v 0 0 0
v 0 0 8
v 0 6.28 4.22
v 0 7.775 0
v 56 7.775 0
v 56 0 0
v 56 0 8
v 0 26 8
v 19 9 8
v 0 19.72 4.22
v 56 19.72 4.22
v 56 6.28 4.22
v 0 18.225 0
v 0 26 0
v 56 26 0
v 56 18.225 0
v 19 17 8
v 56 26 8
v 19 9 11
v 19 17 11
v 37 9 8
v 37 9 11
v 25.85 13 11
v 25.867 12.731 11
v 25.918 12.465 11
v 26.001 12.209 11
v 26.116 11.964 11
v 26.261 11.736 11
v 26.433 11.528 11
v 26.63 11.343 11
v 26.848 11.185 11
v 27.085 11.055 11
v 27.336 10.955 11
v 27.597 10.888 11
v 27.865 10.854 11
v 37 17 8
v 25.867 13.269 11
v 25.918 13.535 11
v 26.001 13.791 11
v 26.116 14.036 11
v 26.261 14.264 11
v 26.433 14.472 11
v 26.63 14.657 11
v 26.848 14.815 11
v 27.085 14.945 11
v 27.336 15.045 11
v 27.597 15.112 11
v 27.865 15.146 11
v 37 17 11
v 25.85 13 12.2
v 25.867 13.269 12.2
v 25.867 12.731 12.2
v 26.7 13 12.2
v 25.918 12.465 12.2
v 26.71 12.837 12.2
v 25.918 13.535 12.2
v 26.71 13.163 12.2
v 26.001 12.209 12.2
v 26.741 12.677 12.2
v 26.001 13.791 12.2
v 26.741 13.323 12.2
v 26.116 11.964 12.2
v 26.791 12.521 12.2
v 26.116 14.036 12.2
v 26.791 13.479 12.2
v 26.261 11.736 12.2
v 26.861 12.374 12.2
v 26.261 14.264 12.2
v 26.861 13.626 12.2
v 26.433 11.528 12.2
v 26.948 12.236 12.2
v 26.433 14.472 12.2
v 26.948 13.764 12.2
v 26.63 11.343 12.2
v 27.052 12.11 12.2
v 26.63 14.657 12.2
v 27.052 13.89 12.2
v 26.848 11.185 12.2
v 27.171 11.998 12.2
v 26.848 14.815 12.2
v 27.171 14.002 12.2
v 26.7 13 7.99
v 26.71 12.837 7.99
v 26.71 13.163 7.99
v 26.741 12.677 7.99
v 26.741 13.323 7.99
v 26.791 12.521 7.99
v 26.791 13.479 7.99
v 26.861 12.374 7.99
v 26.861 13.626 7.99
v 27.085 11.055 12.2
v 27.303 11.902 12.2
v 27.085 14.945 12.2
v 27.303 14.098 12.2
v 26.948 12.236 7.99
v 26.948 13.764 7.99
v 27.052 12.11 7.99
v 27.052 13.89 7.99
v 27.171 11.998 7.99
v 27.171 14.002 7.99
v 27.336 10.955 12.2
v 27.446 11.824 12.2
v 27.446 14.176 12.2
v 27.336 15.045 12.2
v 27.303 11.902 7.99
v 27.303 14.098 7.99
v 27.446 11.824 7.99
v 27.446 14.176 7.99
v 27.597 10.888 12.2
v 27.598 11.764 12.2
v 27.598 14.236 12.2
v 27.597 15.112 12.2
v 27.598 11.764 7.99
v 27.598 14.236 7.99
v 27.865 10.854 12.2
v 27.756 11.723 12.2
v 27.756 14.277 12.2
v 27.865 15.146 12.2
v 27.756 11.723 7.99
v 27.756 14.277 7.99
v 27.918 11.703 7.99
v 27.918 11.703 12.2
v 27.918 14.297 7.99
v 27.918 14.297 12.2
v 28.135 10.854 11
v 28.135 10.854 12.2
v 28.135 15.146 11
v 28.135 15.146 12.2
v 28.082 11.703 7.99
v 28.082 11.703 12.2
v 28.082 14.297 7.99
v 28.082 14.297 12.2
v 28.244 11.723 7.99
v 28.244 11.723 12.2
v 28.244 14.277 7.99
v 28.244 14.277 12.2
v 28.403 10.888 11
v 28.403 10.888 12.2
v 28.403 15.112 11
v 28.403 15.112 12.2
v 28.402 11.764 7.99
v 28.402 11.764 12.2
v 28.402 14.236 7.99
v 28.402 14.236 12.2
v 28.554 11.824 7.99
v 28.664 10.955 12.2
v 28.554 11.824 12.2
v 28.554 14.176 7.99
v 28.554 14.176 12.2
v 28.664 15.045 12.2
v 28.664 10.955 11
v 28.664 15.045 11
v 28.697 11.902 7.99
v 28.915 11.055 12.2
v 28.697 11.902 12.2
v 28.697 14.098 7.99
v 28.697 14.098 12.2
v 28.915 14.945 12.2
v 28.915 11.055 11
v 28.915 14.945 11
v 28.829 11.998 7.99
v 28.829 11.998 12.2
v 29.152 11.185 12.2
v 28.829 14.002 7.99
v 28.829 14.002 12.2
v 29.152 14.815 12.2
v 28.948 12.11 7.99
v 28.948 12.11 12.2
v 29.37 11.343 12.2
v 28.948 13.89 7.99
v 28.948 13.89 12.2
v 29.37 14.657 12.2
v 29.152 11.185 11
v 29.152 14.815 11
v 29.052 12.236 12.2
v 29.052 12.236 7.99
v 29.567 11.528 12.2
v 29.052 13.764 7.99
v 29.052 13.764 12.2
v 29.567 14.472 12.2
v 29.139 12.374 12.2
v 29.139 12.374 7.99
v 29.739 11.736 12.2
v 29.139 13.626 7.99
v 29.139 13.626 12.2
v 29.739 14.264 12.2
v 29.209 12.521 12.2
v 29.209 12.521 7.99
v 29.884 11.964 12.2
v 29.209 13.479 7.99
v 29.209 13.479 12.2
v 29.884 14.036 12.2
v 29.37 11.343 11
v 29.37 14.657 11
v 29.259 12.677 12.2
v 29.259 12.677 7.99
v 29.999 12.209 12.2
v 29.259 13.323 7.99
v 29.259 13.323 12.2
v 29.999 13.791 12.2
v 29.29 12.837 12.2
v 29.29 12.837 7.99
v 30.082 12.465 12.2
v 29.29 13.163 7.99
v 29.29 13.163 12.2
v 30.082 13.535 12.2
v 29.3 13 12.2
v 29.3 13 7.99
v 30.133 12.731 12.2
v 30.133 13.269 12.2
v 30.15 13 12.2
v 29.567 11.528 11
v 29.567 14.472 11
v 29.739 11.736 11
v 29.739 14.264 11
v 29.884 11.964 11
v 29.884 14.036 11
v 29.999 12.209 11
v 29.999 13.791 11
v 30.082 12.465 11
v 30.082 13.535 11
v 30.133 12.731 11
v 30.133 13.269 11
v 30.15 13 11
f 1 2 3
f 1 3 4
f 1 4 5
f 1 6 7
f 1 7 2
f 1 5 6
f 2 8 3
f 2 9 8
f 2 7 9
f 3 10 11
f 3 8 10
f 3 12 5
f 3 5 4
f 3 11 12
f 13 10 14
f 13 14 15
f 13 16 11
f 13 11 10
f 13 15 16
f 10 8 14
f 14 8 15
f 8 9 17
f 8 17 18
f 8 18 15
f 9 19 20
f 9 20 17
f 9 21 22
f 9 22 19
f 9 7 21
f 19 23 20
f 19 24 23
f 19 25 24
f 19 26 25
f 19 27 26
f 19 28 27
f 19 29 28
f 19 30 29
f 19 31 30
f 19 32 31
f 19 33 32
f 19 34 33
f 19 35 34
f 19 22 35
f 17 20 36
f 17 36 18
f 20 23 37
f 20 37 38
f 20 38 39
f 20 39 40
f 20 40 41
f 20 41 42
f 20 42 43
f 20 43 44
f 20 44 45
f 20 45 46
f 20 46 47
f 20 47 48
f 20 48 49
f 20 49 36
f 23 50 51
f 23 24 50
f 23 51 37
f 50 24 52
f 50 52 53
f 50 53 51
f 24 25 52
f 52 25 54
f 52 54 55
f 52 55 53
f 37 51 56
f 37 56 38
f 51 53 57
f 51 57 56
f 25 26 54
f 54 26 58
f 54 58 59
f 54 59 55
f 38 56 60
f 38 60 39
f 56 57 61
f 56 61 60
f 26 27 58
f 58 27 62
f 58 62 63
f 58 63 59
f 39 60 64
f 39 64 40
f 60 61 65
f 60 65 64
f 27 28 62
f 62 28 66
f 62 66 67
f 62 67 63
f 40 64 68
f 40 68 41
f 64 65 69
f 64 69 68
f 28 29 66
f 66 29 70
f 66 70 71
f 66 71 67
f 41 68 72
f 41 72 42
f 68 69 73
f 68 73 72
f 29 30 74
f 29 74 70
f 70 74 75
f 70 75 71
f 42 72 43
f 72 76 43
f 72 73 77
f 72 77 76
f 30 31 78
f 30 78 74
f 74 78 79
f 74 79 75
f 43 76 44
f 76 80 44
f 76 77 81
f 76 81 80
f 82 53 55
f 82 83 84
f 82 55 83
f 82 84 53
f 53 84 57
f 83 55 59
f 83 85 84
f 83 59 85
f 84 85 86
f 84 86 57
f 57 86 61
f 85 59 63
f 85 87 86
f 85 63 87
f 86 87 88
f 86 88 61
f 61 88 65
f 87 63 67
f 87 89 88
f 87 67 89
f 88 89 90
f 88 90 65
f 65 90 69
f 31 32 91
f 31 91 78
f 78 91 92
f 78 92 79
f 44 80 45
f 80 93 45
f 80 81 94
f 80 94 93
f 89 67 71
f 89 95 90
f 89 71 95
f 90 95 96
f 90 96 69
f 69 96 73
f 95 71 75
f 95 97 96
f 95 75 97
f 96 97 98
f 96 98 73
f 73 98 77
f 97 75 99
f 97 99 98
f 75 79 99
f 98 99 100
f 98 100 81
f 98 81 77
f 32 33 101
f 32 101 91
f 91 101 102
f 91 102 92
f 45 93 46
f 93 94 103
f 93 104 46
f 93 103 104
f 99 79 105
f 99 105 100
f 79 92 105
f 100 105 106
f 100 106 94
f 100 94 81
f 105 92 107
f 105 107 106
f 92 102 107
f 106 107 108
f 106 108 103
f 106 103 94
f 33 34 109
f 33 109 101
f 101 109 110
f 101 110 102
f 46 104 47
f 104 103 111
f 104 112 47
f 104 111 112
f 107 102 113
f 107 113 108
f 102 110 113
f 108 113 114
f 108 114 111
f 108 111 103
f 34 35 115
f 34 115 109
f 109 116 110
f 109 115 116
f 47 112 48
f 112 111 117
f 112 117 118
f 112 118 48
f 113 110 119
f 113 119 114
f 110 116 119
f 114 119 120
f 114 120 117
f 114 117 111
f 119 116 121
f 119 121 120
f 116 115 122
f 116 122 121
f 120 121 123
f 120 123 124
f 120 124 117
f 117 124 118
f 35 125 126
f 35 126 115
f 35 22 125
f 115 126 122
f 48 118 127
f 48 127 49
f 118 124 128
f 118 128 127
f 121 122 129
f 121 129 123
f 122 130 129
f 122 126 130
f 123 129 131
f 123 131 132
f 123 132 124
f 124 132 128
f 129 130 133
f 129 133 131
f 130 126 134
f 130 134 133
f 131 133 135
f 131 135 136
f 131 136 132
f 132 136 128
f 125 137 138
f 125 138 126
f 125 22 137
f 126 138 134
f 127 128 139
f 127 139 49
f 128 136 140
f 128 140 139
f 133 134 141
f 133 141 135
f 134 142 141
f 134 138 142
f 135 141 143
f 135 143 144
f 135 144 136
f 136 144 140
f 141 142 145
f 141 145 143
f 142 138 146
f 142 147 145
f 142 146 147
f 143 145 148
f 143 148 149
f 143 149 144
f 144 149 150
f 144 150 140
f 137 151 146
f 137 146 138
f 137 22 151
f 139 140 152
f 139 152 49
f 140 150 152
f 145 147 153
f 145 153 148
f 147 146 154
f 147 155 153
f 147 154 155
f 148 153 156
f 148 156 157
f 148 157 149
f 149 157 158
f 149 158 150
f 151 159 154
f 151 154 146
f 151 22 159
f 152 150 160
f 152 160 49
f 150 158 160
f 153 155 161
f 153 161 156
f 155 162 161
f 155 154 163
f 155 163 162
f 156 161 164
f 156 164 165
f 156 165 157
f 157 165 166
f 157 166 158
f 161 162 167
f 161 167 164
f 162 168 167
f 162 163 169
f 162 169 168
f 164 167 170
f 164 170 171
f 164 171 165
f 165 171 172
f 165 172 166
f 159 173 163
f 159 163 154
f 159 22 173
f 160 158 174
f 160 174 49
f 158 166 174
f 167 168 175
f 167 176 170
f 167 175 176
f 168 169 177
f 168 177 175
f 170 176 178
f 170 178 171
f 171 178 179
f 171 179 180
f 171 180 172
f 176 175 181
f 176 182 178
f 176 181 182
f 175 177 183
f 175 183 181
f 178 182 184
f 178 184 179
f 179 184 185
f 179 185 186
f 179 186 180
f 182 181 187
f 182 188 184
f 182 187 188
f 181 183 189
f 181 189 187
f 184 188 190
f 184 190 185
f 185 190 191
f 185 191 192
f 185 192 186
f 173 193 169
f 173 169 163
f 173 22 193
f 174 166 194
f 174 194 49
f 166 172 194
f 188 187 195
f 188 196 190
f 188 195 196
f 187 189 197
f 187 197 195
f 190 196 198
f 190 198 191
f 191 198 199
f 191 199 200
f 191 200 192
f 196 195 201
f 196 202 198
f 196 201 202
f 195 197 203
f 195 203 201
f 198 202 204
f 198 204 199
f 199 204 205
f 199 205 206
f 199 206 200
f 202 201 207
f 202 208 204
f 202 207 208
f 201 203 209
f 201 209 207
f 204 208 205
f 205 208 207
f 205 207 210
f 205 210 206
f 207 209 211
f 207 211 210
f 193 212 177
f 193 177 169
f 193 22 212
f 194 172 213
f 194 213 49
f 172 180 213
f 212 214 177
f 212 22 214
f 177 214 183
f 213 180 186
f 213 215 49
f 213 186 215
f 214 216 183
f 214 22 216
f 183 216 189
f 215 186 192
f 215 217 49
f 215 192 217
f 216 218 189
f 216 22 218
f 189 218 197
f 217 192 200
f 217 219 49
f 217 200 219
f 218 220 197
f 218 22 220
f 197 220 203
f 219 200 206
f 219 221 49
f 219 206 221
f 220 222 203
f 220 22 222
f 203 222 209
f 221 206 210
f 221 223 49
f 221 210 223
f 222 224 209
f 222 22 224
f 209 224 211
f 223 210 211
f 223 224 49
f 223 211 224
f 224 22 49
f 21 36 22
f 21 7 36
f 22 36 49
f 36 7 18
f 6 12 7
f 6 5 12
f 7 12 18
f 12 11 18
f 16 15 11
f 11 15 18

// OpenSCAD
// file: 02_Carrinho_X.scad
/*
  Carrinhos do portico X.

  Pecas deste arquivo:
    1. carrinho_x_motriz()       — PLA, motor e pinhao X
    2. sapata_x_passiva()        — PETG, desliza no trilho traseiro
    3. sela_x_passiva()          — PLA, recebe a viga e flutua +/-0,60 mm em Y

  A sapata passiva e retida por um unico M3x8. O ressalto central fica 0,20 mm
  acima da sela: o parafuso aperta no ressalto, nao bloqueia o movimento lateral.
*/

include <00_Parametros.scad>;

module front_beam_key() {
  difference() {
    translate([x_carriage_length/2-beam_key_w/2,
               base_w/2+beam_key_inset, x_carriage_h-EPS])
      cube([beam_key_w,beam_key_d,beam_key_h+EPS]);
    translate([x_carriage_length/2,base_w/2+beam_key_inset-EPS,
               x_carriage_h+beam_key_h/2])
      rotate([-90,0,0]) cylinder(r=1.35,h=beam_key_d+2*EPS);
  }
}

module rear_beam_key(z0=passive_saddle_h) {
  difference() {
    translate([x_carriage_length/2-beam_key_w/2,
               base_w/2-beam_key_inset-beam_key_d,z0-EPS])
      cube([beam_key_w,beam_key_d,beam_key_h+EPS]);
    translate([x_carriage_length/2,
               base_w/2-beam_key_inset-beam_key_d-EPS,
               z0+beam_key_h/2])
      rotate([-90,0,0]) cylinder(r=1.35,h=beam_key_d+2*EPS);
    // Alivio do ombro flutuante no limite de +/-0,60 mm.
    hull()
      for (dy=[-passive_float,passive_float])
        translate([x_carriage_length/2,base_w/2+dy,z0-EPS])
          cylinder(r=2.45,h=beam_key_h+2*EPS);
  }
}

module carrinho_x_motriz() {
  motor_x_axis_z = rack_pitch_height + gear_pitch_radius + gear_mesh_clearance;
  motor_face_y = -3.3;

  difference() {
    union() {
      cube([x_carriage_length,base_w,x_carriage_h]);

      // Orelhas compactas: os dois furos ficam dentro dos 56 mm do carrinho.
      for (hx=[x_carriage_length/2-motor_flange_dist/2,
               x_carriage_length/2+motor_flange_dist/2])
        translate([hx,motor_face_y,motor_x_axis_z])
          rotate([-90,0,0]) cylinder(r=wall_screw,h=3.4);

      front_beam_key();
    }

    translate([0,base_w/2,-0.5])
      dovetail_female_x(x_carriage_length);

    // Passagem da cremalheira e bolso do pinhao.
    translate([-EPS,x_rack_center_y-(rack_width+0.8)/2,-EPS])
      cube([x_carriage_length+2*EPS,rack_width+0.8,tooth_height+0.7]);
    translate([x_carriage_length/2,
               x_rack_center_y-pinion_thickness/2-0.2,motor_x_axis_z])
      rotate([-90,0,0])
        cylinder(r=gear_outer_radius+0.35,h=pinion_thickness+0.4);

    for (hx=[x_carriage_length/2-motor_flange_dist/2,
             x_carriage_length/2+motor_flange_dist/2])
      translate([hx,motor_face_y-EPS,motor_x_axis_z])
        rotate([-90,0,0]) cylinder(r=motor_flange_hole_r,h=8);
  }
}

module sapata_x_passiva() {
  shoulder_h = passive_saddle_h + 0.20;
  difference() {
    union() {
      cube([x_carriage_length,base_w,passive_shoe_h]);
      translate([x_carriage_length/2-passive_boss_w/2,
                 base_w/2-passive_boss_d/2,passive_shoe_h-EPS])
        cube([passive_boss_w,passive_boss_d,passive_boss_h+EPS]);
      // Ombro de aperto: recebe a cabeca do M3 sem prensar a sela.
      translate([x_carriage_length/2,base_w/2,passive_shoe_h])
        cylinder(r=2.15,h=shoulder_h);
    }
    translate([0,base_w/2,-0.5])
      dovetail_female_x(x_carriage_length);
    translate([x_carriage_length/2,base_w/2,passive_shoe_h-EPS])
      cylinder(r=1.30,h=shoulder_h+2*EPS);
  }
}

module sela_x_passiva() {
  pocket_w = passive_boss_w + 2*pressfit_clearance;
  pocket_d = passive_boss_d + 2*passive_float + 2*pressfit_clearance;
  slot_r = 2.35;
  slide_relief = 0.25;

  difference() {
    union() {
      cube([x_carriage_length,base_w,passive_saddle_h]);
      rear_beam_key();
    }

    // Canais rasos: ponte maxima de 10 mm e apenas 21% de contato.
    for (g=[[0,9],[12,10],[25,10],[38,10],[51,5]])
      translate([g[0],-EPS,-EPS])
        cube([g[1],base_w+2*EPS,slide_relief+EPS]);

    // Bolso restringe X e libera somente o desalinhamento transversal Y.
    translate([x_carriage_length/2-pocket_w/2,
               base_w/2-pocket_d/2,-EPS])
      cube([pocket_w,pocket_d,passive_boss_h+pressfit_clearance+EPS]);

    // Rasgo do ombro/parafuso: 1,20 mm de movimento total em Y.
    hull() {
      for (dy=[-passive_float,passive_float])
        translate([x_carriage_length/2,base_w/2+dy,-EPS])
          cylinder(r=slot_r,h=passive_saddle_h+2*EPS);
    }
  }
}

// Alias usado por arquivos antigos e por quem quer apenas o carrinho motriz.
module carrinho_x() carrinho_x_motriz();

// Layout PLA: carrinho motriz e sela rigida. A sapata PETG fica em 02B.
carrinho_x_motriz();
translate([70,0,0]) sela_x_passiva();
// main file
/* Sapata flutuante do segundo trilho. Imprimir em PETG. */
include <00_Parametros.scad>;
use <02_Carrinho_X.scad>;

sapata_x_passiva();
